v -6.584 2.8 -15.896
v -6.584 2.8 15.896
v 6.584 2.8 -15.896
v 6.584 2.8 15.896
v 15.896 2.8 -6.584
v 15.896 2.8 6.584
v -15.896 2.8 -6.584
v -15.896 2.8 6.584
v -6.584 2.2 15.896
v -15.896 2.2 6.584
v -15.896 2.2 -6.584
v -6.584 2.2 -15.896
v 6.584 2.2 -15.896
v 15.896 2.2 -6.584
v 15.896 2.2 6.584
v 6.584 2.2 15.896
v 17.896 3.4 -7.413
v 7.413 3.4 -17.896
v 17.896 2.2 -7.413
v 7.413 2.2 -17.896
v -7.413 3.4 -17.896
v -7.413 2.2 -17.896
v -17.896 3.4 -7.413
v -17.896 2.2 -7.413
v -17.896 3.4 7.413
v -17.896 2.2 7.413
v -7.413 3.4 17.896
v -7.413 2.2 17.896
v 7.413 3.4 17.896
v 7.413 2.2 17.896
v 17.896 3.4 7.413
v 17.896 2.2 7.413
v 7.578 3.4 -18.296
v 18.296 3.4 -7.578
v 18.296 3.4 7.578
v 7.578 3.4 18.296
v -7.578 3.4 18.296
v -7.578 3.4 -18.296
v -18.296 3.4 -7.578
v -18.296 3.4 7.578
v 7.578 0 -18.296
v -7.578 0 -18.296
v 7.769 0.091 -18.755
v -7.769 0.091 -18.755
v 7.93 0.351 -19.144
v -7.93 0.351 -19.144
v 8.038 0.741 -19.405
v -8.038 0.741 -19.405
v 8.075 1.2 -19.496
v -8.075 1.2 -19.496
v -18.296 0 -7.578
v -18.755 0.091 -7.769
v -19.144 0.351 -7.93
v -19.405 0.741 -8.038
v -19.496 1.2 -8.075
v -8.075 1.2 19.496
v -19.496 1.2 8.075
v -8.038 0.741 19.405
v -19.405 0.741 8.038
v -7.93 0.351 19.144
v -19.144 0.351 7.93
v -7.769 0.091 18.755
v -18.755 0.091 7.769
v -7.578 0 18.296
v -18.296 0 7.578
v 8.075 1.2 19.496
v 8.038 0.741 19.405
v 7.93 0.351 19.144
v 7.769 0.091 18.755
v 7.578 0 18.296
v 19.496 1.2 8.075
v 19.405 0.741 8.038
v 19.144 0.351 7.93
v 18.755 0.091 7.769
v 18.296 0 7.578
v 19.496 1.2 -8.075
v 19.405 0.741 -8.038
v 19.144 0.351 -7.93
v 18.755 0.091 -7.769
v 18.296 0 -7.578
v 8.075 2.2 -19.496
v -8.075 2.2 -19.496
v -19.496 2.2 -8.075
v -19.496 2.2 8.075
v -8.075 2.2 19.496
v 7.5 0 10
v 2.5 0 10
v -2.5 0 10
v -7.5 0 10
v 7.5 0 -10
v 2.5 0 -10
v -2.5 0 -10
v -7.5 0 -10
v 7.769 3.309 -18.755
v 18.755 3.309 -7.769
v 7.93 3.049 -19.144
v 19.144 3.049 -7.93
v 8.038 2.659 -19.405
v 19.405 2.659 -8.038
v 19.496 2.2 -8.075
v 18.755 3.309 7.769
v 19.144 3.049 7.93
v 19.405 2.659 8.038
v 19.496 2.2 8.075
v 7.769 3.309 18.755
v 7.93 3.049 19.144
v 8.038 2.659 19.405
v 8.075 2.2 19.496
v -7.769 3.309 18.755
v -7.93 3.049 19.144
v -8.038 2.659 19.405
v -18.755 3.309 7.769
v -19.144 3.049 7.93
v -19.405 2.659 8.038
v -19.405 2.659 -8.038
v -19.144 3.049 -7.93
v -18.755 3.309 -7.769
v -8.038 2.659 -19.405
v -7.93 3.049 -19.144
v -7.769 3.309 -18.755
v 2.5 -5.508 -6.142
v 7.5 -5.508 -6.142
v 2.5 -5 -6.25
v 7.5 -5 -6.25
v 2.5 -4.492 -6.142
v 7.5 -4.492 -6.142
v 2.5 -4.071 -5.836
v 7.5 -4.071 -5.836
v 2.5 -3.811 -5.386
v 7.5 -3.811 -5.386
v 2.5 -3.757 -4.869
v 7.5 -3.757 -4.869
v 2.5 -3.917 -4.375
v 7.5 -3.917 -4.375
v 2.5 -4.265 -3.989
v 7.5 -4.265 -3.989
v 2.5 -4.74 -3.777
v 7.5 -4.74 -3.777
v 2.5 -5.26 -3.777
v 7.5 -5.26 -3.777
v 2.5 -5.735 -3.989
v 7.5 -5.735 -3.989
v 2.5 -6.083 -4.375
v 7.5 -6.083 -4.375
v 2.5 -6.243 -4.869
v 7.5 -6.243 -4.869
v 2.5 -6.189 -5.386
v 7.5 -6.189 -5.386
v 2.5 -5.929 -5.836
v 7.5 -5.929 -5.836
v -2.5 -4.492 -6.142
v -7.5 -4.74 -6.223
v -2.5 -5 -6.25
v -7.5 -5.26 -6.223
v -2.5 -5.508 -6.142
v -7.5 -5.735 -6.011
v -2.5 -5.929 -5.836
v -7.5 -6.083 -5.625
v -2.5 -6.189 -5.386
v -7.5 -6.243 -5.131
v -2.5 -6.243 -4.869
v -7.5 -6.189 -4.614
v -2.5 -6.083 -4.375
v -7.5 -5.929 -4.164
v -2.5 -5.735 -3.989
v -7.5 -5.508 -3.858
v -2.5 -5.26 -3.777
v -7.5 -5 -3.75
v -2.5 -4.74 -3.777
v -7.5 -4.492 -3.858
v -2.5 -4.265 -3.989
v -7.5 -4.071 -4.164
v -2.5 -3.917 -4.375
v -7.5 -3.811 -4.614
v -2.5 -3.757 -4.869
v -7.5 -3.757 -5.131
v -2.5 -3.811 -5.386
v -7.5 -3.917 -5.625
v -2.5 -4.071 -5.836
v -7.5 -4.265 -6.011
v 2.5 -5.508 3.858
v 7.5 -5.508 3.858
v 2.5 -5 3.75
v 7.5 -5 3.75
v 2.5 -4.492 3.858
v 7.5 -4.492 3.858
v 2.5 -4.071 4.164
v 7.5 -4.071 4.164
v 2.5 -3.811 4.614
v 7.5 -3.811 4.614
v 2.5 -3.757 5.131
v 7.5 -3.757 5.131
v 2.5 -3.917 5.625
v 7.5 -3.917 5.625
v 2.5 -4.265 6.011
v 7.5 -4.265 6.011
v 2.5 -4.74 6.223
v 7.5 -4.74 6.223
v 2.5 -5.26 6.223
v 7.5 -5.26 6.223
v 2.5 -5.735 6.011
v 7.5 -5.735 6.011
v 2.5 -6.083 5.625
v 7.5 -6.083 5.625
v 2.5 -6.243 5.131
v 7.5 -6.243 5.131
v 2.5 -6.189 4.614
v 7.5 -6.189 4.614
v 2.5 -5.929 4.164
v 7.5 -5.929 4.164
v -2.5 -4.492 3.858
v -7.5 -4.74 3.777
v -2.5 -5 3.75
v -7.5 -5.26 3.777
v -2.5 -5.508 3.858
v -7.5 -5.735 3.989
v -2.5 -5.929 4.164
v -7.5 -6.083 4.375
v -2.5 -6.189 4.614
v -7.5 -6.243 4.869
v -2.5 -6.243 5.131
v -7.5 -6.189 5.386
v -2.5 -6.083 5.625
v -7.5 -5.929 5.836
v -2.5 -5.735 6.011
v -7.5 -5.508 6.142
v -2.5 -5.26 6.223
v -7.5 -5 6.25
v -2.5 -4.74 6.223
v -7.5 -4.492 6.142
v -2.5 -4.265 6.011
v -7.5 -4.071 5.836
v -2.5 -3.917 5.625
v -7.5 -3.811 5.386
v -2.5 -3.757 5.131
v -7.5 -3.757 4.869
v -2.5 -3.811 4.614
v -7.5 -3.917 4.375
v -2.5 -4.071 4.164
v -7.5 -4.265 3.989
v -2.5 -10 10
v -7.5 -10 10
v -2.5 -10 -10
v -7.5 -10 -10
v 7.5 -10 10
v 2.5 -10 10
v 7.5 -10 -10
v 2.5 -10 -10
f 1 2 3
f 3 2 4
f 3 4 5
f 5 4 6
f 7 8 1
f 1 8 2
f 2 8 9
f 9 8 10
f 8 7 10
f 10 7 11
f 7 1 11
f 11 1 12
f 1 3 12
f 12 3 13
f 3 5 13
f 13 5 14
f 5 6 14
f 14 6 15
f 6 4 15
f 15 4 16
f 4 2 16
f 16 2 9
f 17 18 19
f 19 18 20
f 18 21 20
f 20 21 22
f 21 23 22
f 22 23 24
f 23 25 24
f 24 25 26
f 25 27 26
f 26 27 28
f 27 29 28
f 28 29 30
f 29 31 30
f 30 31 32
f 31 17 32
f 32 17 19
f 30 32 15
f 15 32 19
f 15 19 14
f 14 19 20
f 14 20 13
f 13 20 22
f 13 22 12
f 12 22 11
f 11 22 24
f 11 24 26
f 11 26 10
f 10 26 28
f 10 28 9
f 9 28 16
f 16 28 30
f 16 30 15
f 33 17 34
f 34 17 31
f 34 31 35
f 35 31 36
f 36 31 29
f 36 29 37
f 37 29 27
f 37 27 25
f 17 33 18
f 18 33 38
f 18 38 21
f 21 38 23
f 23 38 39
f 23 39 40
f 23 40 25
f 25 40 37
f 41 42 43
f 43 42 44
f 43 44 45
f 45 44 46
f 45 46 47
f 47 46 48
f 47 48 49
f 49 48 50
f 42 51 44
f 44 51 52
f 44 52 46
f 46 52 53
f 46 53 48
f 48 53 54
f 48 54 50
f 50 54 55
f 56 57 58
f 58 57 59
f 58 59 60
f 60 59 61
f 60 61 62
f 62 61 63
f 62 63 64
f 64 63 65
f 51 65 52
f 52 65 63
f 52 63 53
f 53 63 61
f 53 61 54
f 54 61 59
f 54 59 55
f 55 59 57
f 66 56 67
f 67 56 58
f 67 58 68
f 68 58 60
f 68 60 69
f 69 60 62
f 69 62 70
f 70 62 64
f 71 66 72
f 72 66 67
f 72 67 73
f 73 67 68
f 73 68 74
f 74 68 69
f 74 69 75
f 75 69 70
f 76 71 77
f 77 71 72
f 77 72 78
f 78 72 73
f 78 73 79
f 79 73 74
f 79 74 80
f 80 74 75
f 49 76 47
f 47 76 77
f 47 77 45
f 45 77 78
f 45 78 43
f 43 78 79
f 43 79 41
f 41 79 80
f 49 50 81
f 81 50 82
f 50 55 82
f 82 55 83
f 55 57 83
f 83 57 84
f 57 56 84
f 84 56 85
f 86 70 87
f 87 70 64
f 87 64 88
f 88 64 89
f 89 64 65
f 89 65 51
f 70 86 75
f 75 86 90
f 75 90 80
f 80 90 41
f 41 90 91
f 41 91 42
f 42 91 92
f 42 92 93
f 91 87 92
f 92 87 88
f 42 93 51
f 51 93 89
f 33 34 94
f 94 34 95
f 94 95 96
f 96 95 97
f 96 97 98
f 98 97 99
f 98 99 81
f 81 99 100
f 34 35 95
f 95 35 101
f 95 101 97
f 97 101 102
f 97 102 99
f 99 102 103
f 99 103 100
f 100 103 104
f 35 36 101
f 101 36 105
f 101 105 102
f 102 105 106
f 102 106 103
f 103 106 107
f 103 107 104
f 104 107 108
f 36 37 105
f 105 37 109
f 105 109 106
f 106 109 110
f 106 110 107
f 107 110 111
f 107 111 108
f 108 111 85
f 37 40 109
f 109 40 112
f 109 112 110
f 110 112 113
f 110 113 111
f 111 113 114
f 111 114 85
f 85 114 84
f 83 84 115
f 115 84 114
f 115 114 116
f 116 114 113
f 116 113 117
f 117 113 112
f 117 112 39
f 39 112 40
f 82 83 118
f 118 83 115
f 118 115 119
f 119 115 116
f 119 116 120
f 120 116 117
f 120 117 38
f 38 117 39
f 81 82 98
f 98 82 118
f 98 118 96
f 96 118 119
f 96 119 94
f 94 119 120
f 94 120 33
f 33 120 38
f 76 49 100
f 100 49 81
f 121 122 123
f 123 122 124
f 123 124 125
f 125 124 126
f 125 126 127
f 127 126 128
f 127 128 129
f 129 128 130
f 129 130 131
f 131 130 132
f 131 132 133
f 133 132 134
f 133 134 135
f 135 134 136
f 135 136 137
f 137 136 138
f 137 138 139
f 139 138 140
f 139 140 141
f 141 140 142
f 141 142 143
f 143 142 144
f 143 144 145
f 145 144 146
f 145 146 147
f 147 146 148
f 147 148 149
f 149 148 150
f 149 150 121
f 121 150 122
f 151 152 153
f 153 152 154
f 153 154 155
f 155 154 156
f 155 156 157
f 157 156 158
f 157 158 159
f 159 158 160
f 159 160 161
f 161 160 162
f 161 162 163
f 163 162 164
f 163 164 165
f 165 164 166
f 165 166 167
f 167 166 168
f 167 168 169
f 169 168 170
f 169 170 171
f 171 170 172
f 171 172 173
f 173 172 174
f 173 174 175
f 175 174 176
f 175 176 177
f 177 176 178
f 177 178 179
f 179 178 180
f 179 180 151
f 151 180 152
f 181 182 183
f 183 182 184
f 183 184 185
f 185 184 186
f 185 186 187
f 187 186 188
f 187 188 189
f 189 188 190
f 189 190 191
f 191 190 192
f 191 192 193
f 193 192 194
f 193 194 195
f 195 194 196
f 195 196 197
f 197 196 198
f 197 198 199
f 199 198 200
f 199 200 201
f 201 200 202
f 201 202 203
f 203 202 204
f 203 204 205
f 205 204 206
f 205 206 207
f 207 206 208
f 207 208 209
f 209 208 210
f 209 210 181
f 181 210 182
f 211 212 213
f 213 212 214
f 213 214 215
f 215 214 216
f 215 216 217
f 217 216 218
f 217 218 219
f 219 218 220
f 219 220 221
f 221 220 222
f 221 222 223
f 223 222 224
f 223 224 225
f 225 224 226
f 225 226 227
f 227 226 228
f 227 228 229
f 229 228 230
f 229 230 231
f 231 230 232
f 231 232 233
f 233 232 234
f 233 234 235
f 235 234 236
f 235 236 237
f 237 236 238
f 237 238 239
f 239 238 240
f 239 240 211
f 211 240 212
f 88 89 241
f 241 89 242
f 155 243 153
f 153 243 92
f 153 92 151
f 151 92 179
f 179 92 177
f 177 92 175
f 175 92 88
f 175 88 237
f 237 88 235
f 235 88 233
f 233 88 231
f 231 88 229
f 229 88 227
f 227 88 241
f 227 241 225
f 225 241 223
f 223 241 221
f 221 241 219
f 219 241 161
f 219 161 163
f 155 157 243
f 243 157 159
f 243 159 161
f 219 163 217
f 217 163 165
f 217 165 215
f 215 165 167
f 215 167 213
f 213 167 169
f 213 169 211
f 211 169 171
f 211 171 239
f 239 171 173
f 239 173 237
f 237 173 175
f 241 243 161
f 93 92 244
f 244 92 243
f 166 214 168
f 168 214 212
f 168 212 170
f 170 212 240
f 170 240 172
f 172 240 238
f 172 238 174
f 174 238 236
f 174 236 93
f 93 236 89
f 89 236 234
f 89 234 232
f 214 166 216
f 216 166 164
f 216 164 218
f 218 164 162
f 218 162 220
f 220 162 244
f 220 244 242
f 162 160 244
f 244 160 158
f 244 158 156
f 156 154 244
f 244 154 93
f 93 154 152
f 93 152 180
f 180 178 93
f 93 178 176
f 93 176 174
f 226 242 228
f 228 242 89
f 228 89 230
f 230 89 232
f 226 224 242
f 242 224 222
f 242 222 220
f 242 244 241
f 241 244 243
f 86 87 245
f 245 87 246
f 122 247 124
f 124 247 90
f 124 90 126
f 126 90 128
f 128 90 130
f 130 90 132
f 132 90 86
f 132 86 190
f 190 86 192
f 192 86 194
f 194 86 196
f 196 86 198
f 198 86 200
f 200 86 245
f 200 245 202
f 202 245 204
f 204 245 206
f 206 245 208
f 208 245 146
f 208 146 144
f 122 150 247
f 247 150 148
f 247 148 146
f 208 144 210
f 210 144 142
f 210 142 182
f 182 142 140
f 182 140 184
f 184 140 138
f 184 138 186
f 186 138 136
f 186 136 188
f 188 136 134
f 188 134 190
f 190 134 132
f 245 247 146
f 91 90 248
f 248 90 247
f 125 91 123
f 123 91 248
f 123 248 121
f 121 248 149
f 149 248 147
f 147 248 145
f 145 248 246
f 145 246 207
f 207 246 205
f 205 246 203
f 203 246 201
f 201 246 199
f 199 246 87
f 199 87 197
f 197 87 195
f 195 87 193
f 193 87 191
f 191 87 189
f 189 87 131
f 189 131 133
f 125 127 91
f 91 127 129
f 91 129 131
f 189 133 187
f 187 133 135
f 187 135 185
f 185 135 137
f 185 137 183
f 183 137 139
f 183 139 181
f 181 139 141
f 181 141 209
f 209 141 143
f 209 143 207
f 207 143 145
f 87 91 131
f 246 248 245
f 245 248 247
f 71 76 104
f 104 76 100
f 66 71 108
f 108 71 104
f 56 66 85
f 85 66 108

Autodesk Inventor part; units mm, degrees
ref_plane "YZ Plane" through (0, 0, 0) normal (1, 0, 0) x (0, 1, 0)
ref_plane "XZ Plane" through (0, 0, 0) normal (0, 1, 0) x (-1, 0, 0)
ref_plane "XY Plane" through (0, 0, 0) normal (0, 0, 1) x (1, 0, 0)
sketch "스케치3" plane through (0, 0, 0) normal (0, 1, 0) x (-1, 0, 0)
  line L0 (19.4959, -8.0755) -> (8.0755, -19.4959)
  line L1 (8.0755, -19.4959) -> (-8.0755, -19.4959)
  line L2 (-8.0755, -19.4959) -> (-19.4959, -8.0755)
  line L3 (-19.4959, -8.0755) -> (-19.4959, 8.0755)
  line L4 (-19.4959, 8.0755) -> (-8.0755, 19.4959)
  line L5 (-8.0755, 19.4959) -> (8.0755, 19.4959)
  line L6 (8.0755, 19.4959) -> (19.4959, 8.0755)
  line L7 (19.4959, 8.0755) -> (19.4959, -8.0755)
  line L8 (6.75, -16.2959) -> (-6.75, -16.2959)
  line L9 (-6.75, -16.2959) -> (-16.2959, -6.75)
  line L10 (-16.2959, -6.75) -> (-16.2959, 6.75)
  line L11 (-16.2959, 6.75) -> (-6.75, 16.2959)
  line L12 (-6.75, 16.2959) -> (6.75, 16.2959)
  line L13 (6.75, 16.2959) -> (16.2959, 6.75)
  line L14 (16.2959, 6.75) -> (16.2959, -6.75)
  line L15 (16.2959, -6.75) -> (6.75, -16.2959)
  point P0 (0, 0)
  point P1 (0, 0)
  point P2 (0, 0)
  point P3 (0, 0)
  dimension "d66" = 13.5
  dimension "d67" = 3.2
extrude "돌출2" add sketch "스케치3" along normal blind 3.4 contours L0 L1 L2 L3 L4 L5 L6 L7 | L8 L9 L10 L11 L12 L13 L14 L15
sketch "스케치9" plane through (0, 0, 0) normal (0, -1, 0) x (1, 0, 0)
  line L0 (7.5, 10) -> (2.5, 10)
  line L1 (2.5, 10) -> (2.5, -10)
  line L2 (2.5, -10) -> (7.5, -10)
  line L3 (7.5, -10) -> (7.5, 10)
  line L4 (7.5, 10) -> (2.5, -10) construction
  line L5 (2.5, 10) -> (7.5, -10) construction
  line L6 (-2.5, 10) -> (-7.5, 10)
  line L7 (-7.5, 10) -> (-7.5, -10)
  line L8 (-7.5, -10) -> (-2.5, -10)
  line L9 (-2.5, 10) -> (-7.5, -10) construction
  line L10 (-7.5, 10) -> (-2.5, -10) construction
  line L11 (-2.5, -10) -> (-2.5, 10)
  point P0 (0, 0)
  point P1 (5, 0)
  point P2 (-5, 0)
  dimension "d42" = 20
  dimension "d43" = 5
  dimension "d44" = 2.5
  dimension "d47" = 10
extrude "돌출8" add sketch "스케치9" along normal blind 10
sketch "스케치10" plane through (-7.5, 0, -10) normal (-1, 0, 0) x (0, 0, 1)
  circle A0 centre (15, -5) radius 1.25
  line L0 (19.9591, 0) -> (0.0886, 0)
  line L1 (18.0755, 0) -> (1.9245, 0) projected
  circle A1 centre (5, -5) radius 1.25
  line L2 (20, 0) -> (20, -10) projected
  point P0 (10, 0)
  dimension "d54" = 2.5
  dimension "d57" = 10
  dimension "d62" = 5
  dimension "d63" = 5
extrude "돌출9" cut sketch "스케치10" against normal blind 20
fillet "모깎기1" radius 1.2 16 edges at (-13.7857, 3.4, 13.7857) (0, 3.4, 19.4959) (13.7857, 3.4, 13.7857) (19.4959, 3.4, 0) (13.7857, 3.4, -13.7857) (0, 3.4, -19.4959) (-13.7857, 3.4, -13.7857) (-19.4959, 3.4, 0) (-13.7857, 0, 13.7857) (0, 0, 19.4959) (13.7857, 0, 13.7857) (19.4959, 0, 0) (13.7857, 0, -13.7857) (0, 0, -19.4959) (-13.7857, 0, -13.7857) (-19.4959, 0, 0)
sketch "스케치12" plane through (0, 3.4, 0) normal (0, 1, 0) x (1, 0, 0)
  line L0 (7.4127, -17.8959) -> (-7.4127, -17.8959)
  line L1 (-7.4127, -17.8959) -> (-17.8959, -7.4127)
  line L2 (-17.8959, -7.4127) -> (-17.8959, 7.4127)
  line L3 (-17.8959, 7.4127) -> (-7.4127, 17.8959)
  line L4 (-7.4127, 17.8959) -> (7.4127, 17.8959)
  line L5 (7.4127, 17.8959) -> (17.8959, 7.4127)
  line L6 (17.8959, 7.4127) -> (17.8959, -7.4127)
  line L7 (17.8959, -7.4127) -> (7.4127, -17.8959)
  line L8 (-6.5843, 15.8959) -> (6.5843, 15.8959)
  line L9 (6.5843, 15.8959) -> (15.8959, 6.5843)
  line L10 (15.8959, 6.5843) -> (15.8959, -6.5843)
  line L11 (15.8959, -6.5843) -> (6.5843, -15.8959)
  line L12 (6.5843, -15.8959) -> (-6.5843, -15.8959)
  line L13 (-6.5843, -15.8959) -> (-15.8959, -6.5843)
  line L14 (-15.8959, -6.5843) -> (-15.8959, 6.5843)
  line L15 (-15.8959, 6.5843) -> (-6.5843, 15.8959)
  line L16 (-18.2959, -7.5784) -> (-18.2959, 7.5784) projected
  line L17 (-19.4959, 8.0755) -> (-19.4959, -8.0755) projected
  point P0 (0, 0)
  point P1 (0, 0)
  point P2 (0, 0)
  point P3 (-17.8959, 0)
  point P4 (-19.4959, 0)
  point P5 (-15.8959, 0)
  dimension "d100" = 1.6
  dimension "d101" = 2
extrude "돌출11" cut sketch "스케치12" against normal blind 1.2
sketch "스케치13" plane through (0, 3.4, 0) normal (0, 1, 0) x (1, 0, 0)
  line L0 (15.8959, 6.5843) -> (6.5843, 15.8959) projected
  line L1 (6.5843, 15.8959) -> (-6.5843, 15.8959) projected
  line L2 (-6.5843, 15.8959) -> (-15.8959, 6.5843) projected
  line L3 (-15.8959, 6.5843) -> (-15.8959, -6.5843) projected
  line L4 (-15.8959, -6.5843) -> (-6.5843, -15.8959) projected
  line L5 (-6.5843, -15.8959) -> (6.5843, -15.8959) projected
  line L6 (6.5843, -15.8959) -> (15.8959, -6.5843) projected
  line L7 (15.8959, -6.5843) -> (15.8959, 6.5843) projected
  point P0 (0, 0)
extrude "돌출12" cut sketch "스케치13" against normal blind 0.6
properties part number "OV-PAM_bottom_2"
